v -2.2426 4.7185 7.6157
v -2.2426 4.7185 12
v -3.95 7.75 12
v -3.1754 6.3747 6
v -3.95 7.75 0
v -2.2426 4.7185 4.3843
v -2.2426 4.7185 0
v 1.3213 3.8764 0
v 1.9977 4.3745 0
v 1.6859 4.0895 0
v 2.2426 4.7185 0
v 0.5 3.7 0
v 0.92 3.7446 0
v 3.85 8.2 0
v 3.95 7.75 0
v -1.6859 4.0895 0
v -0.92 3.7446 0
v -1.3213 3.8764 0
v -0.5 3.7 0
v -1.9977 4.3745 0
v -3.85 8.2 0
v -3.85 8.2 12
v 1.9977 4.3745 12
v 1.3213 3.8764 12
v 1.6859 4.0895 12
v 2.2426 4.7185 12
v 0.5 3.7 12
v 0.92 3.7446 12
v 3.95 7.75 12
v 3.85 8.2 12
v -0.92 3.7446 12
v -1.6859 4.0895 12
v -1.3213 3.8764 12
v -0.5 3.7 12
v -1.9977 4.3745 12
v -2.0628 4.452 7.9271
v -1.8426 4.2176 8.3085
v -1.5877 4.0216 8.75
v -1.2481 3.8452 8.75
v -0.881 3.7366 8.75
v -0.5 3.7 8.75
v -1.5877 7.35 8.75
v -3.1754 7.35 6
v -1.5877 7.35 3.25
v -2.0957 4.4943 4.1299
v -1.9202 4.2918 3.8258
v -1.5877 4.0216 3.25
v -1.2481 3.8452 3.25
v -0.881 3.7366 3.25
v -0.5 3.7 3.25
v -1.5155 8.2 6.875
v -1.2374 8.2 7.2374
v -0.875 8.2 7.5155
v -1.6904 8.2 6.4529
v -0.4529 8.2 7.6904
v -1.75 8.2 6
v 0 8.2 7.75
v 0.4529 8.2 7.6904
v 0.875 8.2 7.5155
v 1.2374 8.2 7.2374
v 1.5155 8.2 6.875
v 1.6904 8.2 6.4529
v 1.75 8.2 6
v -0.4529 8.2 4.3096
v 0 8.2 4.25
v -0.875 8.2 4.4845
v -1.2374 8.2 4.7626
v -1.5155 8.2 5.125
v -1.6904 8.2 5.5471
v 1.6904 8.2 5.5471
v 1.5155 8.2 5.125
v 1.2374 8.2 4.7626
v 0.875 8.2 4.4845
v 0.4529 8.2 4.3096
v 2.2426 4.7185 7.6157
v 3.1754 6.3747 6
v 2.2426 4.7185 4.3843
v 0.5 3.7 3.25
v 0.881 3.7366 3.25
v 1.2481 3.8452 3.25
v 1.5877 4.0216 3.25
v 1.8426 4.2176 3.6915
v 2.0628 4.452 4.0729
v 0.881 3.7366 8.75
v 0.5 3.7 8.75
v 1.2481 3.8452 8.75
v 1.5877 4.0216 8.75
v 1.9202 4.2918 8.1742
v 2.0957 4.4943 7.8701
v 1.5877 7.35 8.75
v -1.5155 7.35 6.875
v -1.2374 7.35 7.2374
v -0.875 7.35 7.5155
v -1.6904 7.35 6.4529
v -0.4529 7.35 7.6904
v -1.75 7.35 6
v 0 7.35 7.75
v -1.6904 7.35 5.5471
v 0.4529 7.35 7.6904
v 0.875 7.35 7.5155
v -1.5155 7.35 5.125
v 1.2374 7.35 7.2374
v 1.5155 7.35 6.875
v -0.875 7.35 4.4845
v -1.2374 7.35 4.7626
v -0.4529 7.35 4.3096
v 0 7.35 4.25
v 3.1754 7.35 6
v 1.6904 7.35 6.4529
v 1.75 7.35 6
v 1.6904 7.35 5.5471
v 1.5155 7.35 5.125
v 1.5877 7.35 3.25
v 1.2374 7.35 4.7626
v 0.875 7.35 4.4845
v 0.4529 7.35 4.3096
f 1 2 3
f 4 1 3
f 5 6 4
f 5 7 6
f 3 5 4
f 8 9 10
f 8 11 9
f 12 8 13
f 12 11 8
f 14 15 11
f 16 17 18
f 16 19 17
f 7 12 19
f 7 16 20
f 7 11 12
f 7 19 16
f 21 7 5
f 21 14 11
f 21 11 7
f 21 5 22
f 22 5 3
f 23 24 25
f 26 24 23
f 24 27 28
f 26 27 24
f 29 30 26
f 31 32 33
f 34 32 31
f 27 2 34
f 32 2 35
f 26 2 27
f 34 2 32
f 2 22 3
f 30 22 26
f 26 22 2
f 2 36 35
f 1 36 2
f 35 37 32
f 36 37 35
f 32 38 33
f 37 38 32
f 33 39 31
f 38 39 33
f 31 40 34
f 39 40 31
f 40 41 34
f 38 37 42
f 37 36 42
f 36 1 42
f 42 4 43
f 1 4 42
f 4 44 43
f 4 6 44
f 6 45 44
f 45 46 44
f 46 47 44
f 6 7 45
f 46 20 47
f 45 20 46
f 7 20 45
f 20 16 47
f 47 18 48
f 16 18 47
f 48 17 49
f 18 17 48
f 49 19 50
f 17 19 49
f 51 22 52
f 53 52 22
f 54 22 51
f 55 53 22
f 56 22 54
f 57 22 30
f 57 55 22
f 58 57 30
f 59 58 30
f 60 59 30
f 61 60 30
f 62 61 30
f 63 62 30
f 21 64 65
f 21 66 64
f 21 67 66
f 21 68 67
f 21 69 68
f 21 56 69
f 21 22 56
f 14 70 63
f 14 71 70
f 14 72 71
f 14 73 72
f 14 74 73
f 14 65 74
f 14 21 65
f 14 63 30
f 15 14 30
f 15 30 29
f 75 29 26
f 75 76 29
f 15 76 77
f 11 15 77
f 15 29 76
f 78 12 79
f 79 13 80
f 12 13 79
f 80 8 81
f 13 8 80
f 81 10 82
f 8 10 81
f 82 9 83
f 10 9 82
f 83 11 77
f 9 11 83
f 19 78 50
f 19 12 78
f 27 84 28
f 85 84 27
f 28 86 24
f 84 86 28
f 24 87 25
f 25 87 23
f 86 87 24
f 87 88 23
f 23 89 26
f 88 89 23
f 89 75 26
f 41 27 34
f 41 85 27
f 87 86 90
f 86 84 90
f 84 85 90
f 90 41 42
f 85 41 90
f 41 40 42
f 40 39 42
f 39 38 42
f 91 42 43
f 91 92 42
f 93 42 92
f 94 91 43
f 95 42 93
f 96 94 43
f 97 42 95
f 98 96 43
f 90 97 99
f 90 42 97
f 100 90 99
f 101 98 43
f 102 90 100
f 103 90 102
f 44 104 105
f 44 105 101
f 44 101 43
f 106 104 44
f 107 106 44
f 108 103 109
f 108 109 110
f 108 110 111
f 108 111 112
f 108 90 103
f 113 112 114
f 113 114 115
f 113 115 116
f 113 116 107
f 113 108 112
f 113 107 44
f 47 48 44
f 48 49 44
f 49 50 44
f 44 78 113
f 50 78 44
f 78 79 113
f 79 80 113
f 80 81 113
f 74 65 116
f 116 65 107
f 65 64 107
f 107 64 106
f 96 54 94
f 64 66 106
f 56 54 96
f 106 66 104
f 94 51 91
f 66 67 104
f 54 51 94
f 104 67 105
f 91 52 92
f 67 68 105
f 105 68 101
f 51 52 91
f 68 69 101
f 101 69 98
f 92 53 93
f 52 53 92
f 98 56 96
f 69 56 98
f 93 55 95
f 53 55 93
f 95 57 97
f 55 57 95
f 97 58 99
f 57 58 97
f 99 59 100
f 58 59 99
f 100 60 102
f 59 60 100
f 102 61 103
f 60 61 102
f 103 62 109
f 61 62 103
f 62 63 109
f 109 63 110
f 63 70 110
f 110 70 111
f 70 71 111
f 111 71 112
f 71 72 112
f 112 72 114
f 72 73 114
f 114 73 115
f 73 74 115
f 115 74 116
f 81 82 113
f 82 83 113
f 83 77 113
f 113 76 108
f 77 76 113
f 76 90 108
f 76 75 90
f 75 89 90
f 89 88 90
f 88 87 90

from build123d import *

# Parameters (mm, degrees)
PAD_DEPTH       = 12
POCKET_DEPTH    = 3.65
SKETCH002_R     = 1.75
POCKET001_DEPTH = 5


with BuildPart() as part:
    # Sketch → Pad (new body)
    with BuildSketch(Plane.XY):
        with BuildLine():
            Line((-3.85, 8.2), (3.85, 8.2))
            Line((3.85, 8.2), (3.95, 7.75))
            Line((3.95, 7.75), (2.242615, 4.718526))
            ThreePointArc((0.5, 3.7), (1.50922, 3.973305), (2.242615, 4.718526))
            Line((0.5, 3.7), (-0.5, 3.7))
            ThreePointArc((-2.242615, 4.718526), (-1.50922, 3.973305), (-0.5, 3.7))
            Line((-2.242615, 4.718526), (-3.95, 7.75))
            Line((-3.85, 8.2), (-3.95, 7.75))
        make_face()
    extrude(amount=PAD_DEPTH)

    # Sketch001 (on Face7 of Pad) → Pocket (cut)
    with BuildSketch(Plane.XZ.offset(-3.7)):
        Polygon((-3.175426, 6), (-1.587713, 3.25), (1.587713, 3.25), (3.175426, 6), (1.587713, 8.75), (-1.587713, 8.75), align=None)
    extrude(amount=-POCKET_DEPTH, mode=Mode.SUBTRACT)

    # Sketch002 (on Face9 of Pocket) → Pocket001 (cut)
    with BuildSketch(Plane(origin=(0, 8.2, 0), x_dir=(-1, 0, 0), z_dir=(0, 1, 0))):
        with Locations((0, 6)):
            Circle(SKETCH002_R)
    extrude(amount=-POCKET001_DEPTH, mode=Mode.SUBTRACT)


solid = part.part
